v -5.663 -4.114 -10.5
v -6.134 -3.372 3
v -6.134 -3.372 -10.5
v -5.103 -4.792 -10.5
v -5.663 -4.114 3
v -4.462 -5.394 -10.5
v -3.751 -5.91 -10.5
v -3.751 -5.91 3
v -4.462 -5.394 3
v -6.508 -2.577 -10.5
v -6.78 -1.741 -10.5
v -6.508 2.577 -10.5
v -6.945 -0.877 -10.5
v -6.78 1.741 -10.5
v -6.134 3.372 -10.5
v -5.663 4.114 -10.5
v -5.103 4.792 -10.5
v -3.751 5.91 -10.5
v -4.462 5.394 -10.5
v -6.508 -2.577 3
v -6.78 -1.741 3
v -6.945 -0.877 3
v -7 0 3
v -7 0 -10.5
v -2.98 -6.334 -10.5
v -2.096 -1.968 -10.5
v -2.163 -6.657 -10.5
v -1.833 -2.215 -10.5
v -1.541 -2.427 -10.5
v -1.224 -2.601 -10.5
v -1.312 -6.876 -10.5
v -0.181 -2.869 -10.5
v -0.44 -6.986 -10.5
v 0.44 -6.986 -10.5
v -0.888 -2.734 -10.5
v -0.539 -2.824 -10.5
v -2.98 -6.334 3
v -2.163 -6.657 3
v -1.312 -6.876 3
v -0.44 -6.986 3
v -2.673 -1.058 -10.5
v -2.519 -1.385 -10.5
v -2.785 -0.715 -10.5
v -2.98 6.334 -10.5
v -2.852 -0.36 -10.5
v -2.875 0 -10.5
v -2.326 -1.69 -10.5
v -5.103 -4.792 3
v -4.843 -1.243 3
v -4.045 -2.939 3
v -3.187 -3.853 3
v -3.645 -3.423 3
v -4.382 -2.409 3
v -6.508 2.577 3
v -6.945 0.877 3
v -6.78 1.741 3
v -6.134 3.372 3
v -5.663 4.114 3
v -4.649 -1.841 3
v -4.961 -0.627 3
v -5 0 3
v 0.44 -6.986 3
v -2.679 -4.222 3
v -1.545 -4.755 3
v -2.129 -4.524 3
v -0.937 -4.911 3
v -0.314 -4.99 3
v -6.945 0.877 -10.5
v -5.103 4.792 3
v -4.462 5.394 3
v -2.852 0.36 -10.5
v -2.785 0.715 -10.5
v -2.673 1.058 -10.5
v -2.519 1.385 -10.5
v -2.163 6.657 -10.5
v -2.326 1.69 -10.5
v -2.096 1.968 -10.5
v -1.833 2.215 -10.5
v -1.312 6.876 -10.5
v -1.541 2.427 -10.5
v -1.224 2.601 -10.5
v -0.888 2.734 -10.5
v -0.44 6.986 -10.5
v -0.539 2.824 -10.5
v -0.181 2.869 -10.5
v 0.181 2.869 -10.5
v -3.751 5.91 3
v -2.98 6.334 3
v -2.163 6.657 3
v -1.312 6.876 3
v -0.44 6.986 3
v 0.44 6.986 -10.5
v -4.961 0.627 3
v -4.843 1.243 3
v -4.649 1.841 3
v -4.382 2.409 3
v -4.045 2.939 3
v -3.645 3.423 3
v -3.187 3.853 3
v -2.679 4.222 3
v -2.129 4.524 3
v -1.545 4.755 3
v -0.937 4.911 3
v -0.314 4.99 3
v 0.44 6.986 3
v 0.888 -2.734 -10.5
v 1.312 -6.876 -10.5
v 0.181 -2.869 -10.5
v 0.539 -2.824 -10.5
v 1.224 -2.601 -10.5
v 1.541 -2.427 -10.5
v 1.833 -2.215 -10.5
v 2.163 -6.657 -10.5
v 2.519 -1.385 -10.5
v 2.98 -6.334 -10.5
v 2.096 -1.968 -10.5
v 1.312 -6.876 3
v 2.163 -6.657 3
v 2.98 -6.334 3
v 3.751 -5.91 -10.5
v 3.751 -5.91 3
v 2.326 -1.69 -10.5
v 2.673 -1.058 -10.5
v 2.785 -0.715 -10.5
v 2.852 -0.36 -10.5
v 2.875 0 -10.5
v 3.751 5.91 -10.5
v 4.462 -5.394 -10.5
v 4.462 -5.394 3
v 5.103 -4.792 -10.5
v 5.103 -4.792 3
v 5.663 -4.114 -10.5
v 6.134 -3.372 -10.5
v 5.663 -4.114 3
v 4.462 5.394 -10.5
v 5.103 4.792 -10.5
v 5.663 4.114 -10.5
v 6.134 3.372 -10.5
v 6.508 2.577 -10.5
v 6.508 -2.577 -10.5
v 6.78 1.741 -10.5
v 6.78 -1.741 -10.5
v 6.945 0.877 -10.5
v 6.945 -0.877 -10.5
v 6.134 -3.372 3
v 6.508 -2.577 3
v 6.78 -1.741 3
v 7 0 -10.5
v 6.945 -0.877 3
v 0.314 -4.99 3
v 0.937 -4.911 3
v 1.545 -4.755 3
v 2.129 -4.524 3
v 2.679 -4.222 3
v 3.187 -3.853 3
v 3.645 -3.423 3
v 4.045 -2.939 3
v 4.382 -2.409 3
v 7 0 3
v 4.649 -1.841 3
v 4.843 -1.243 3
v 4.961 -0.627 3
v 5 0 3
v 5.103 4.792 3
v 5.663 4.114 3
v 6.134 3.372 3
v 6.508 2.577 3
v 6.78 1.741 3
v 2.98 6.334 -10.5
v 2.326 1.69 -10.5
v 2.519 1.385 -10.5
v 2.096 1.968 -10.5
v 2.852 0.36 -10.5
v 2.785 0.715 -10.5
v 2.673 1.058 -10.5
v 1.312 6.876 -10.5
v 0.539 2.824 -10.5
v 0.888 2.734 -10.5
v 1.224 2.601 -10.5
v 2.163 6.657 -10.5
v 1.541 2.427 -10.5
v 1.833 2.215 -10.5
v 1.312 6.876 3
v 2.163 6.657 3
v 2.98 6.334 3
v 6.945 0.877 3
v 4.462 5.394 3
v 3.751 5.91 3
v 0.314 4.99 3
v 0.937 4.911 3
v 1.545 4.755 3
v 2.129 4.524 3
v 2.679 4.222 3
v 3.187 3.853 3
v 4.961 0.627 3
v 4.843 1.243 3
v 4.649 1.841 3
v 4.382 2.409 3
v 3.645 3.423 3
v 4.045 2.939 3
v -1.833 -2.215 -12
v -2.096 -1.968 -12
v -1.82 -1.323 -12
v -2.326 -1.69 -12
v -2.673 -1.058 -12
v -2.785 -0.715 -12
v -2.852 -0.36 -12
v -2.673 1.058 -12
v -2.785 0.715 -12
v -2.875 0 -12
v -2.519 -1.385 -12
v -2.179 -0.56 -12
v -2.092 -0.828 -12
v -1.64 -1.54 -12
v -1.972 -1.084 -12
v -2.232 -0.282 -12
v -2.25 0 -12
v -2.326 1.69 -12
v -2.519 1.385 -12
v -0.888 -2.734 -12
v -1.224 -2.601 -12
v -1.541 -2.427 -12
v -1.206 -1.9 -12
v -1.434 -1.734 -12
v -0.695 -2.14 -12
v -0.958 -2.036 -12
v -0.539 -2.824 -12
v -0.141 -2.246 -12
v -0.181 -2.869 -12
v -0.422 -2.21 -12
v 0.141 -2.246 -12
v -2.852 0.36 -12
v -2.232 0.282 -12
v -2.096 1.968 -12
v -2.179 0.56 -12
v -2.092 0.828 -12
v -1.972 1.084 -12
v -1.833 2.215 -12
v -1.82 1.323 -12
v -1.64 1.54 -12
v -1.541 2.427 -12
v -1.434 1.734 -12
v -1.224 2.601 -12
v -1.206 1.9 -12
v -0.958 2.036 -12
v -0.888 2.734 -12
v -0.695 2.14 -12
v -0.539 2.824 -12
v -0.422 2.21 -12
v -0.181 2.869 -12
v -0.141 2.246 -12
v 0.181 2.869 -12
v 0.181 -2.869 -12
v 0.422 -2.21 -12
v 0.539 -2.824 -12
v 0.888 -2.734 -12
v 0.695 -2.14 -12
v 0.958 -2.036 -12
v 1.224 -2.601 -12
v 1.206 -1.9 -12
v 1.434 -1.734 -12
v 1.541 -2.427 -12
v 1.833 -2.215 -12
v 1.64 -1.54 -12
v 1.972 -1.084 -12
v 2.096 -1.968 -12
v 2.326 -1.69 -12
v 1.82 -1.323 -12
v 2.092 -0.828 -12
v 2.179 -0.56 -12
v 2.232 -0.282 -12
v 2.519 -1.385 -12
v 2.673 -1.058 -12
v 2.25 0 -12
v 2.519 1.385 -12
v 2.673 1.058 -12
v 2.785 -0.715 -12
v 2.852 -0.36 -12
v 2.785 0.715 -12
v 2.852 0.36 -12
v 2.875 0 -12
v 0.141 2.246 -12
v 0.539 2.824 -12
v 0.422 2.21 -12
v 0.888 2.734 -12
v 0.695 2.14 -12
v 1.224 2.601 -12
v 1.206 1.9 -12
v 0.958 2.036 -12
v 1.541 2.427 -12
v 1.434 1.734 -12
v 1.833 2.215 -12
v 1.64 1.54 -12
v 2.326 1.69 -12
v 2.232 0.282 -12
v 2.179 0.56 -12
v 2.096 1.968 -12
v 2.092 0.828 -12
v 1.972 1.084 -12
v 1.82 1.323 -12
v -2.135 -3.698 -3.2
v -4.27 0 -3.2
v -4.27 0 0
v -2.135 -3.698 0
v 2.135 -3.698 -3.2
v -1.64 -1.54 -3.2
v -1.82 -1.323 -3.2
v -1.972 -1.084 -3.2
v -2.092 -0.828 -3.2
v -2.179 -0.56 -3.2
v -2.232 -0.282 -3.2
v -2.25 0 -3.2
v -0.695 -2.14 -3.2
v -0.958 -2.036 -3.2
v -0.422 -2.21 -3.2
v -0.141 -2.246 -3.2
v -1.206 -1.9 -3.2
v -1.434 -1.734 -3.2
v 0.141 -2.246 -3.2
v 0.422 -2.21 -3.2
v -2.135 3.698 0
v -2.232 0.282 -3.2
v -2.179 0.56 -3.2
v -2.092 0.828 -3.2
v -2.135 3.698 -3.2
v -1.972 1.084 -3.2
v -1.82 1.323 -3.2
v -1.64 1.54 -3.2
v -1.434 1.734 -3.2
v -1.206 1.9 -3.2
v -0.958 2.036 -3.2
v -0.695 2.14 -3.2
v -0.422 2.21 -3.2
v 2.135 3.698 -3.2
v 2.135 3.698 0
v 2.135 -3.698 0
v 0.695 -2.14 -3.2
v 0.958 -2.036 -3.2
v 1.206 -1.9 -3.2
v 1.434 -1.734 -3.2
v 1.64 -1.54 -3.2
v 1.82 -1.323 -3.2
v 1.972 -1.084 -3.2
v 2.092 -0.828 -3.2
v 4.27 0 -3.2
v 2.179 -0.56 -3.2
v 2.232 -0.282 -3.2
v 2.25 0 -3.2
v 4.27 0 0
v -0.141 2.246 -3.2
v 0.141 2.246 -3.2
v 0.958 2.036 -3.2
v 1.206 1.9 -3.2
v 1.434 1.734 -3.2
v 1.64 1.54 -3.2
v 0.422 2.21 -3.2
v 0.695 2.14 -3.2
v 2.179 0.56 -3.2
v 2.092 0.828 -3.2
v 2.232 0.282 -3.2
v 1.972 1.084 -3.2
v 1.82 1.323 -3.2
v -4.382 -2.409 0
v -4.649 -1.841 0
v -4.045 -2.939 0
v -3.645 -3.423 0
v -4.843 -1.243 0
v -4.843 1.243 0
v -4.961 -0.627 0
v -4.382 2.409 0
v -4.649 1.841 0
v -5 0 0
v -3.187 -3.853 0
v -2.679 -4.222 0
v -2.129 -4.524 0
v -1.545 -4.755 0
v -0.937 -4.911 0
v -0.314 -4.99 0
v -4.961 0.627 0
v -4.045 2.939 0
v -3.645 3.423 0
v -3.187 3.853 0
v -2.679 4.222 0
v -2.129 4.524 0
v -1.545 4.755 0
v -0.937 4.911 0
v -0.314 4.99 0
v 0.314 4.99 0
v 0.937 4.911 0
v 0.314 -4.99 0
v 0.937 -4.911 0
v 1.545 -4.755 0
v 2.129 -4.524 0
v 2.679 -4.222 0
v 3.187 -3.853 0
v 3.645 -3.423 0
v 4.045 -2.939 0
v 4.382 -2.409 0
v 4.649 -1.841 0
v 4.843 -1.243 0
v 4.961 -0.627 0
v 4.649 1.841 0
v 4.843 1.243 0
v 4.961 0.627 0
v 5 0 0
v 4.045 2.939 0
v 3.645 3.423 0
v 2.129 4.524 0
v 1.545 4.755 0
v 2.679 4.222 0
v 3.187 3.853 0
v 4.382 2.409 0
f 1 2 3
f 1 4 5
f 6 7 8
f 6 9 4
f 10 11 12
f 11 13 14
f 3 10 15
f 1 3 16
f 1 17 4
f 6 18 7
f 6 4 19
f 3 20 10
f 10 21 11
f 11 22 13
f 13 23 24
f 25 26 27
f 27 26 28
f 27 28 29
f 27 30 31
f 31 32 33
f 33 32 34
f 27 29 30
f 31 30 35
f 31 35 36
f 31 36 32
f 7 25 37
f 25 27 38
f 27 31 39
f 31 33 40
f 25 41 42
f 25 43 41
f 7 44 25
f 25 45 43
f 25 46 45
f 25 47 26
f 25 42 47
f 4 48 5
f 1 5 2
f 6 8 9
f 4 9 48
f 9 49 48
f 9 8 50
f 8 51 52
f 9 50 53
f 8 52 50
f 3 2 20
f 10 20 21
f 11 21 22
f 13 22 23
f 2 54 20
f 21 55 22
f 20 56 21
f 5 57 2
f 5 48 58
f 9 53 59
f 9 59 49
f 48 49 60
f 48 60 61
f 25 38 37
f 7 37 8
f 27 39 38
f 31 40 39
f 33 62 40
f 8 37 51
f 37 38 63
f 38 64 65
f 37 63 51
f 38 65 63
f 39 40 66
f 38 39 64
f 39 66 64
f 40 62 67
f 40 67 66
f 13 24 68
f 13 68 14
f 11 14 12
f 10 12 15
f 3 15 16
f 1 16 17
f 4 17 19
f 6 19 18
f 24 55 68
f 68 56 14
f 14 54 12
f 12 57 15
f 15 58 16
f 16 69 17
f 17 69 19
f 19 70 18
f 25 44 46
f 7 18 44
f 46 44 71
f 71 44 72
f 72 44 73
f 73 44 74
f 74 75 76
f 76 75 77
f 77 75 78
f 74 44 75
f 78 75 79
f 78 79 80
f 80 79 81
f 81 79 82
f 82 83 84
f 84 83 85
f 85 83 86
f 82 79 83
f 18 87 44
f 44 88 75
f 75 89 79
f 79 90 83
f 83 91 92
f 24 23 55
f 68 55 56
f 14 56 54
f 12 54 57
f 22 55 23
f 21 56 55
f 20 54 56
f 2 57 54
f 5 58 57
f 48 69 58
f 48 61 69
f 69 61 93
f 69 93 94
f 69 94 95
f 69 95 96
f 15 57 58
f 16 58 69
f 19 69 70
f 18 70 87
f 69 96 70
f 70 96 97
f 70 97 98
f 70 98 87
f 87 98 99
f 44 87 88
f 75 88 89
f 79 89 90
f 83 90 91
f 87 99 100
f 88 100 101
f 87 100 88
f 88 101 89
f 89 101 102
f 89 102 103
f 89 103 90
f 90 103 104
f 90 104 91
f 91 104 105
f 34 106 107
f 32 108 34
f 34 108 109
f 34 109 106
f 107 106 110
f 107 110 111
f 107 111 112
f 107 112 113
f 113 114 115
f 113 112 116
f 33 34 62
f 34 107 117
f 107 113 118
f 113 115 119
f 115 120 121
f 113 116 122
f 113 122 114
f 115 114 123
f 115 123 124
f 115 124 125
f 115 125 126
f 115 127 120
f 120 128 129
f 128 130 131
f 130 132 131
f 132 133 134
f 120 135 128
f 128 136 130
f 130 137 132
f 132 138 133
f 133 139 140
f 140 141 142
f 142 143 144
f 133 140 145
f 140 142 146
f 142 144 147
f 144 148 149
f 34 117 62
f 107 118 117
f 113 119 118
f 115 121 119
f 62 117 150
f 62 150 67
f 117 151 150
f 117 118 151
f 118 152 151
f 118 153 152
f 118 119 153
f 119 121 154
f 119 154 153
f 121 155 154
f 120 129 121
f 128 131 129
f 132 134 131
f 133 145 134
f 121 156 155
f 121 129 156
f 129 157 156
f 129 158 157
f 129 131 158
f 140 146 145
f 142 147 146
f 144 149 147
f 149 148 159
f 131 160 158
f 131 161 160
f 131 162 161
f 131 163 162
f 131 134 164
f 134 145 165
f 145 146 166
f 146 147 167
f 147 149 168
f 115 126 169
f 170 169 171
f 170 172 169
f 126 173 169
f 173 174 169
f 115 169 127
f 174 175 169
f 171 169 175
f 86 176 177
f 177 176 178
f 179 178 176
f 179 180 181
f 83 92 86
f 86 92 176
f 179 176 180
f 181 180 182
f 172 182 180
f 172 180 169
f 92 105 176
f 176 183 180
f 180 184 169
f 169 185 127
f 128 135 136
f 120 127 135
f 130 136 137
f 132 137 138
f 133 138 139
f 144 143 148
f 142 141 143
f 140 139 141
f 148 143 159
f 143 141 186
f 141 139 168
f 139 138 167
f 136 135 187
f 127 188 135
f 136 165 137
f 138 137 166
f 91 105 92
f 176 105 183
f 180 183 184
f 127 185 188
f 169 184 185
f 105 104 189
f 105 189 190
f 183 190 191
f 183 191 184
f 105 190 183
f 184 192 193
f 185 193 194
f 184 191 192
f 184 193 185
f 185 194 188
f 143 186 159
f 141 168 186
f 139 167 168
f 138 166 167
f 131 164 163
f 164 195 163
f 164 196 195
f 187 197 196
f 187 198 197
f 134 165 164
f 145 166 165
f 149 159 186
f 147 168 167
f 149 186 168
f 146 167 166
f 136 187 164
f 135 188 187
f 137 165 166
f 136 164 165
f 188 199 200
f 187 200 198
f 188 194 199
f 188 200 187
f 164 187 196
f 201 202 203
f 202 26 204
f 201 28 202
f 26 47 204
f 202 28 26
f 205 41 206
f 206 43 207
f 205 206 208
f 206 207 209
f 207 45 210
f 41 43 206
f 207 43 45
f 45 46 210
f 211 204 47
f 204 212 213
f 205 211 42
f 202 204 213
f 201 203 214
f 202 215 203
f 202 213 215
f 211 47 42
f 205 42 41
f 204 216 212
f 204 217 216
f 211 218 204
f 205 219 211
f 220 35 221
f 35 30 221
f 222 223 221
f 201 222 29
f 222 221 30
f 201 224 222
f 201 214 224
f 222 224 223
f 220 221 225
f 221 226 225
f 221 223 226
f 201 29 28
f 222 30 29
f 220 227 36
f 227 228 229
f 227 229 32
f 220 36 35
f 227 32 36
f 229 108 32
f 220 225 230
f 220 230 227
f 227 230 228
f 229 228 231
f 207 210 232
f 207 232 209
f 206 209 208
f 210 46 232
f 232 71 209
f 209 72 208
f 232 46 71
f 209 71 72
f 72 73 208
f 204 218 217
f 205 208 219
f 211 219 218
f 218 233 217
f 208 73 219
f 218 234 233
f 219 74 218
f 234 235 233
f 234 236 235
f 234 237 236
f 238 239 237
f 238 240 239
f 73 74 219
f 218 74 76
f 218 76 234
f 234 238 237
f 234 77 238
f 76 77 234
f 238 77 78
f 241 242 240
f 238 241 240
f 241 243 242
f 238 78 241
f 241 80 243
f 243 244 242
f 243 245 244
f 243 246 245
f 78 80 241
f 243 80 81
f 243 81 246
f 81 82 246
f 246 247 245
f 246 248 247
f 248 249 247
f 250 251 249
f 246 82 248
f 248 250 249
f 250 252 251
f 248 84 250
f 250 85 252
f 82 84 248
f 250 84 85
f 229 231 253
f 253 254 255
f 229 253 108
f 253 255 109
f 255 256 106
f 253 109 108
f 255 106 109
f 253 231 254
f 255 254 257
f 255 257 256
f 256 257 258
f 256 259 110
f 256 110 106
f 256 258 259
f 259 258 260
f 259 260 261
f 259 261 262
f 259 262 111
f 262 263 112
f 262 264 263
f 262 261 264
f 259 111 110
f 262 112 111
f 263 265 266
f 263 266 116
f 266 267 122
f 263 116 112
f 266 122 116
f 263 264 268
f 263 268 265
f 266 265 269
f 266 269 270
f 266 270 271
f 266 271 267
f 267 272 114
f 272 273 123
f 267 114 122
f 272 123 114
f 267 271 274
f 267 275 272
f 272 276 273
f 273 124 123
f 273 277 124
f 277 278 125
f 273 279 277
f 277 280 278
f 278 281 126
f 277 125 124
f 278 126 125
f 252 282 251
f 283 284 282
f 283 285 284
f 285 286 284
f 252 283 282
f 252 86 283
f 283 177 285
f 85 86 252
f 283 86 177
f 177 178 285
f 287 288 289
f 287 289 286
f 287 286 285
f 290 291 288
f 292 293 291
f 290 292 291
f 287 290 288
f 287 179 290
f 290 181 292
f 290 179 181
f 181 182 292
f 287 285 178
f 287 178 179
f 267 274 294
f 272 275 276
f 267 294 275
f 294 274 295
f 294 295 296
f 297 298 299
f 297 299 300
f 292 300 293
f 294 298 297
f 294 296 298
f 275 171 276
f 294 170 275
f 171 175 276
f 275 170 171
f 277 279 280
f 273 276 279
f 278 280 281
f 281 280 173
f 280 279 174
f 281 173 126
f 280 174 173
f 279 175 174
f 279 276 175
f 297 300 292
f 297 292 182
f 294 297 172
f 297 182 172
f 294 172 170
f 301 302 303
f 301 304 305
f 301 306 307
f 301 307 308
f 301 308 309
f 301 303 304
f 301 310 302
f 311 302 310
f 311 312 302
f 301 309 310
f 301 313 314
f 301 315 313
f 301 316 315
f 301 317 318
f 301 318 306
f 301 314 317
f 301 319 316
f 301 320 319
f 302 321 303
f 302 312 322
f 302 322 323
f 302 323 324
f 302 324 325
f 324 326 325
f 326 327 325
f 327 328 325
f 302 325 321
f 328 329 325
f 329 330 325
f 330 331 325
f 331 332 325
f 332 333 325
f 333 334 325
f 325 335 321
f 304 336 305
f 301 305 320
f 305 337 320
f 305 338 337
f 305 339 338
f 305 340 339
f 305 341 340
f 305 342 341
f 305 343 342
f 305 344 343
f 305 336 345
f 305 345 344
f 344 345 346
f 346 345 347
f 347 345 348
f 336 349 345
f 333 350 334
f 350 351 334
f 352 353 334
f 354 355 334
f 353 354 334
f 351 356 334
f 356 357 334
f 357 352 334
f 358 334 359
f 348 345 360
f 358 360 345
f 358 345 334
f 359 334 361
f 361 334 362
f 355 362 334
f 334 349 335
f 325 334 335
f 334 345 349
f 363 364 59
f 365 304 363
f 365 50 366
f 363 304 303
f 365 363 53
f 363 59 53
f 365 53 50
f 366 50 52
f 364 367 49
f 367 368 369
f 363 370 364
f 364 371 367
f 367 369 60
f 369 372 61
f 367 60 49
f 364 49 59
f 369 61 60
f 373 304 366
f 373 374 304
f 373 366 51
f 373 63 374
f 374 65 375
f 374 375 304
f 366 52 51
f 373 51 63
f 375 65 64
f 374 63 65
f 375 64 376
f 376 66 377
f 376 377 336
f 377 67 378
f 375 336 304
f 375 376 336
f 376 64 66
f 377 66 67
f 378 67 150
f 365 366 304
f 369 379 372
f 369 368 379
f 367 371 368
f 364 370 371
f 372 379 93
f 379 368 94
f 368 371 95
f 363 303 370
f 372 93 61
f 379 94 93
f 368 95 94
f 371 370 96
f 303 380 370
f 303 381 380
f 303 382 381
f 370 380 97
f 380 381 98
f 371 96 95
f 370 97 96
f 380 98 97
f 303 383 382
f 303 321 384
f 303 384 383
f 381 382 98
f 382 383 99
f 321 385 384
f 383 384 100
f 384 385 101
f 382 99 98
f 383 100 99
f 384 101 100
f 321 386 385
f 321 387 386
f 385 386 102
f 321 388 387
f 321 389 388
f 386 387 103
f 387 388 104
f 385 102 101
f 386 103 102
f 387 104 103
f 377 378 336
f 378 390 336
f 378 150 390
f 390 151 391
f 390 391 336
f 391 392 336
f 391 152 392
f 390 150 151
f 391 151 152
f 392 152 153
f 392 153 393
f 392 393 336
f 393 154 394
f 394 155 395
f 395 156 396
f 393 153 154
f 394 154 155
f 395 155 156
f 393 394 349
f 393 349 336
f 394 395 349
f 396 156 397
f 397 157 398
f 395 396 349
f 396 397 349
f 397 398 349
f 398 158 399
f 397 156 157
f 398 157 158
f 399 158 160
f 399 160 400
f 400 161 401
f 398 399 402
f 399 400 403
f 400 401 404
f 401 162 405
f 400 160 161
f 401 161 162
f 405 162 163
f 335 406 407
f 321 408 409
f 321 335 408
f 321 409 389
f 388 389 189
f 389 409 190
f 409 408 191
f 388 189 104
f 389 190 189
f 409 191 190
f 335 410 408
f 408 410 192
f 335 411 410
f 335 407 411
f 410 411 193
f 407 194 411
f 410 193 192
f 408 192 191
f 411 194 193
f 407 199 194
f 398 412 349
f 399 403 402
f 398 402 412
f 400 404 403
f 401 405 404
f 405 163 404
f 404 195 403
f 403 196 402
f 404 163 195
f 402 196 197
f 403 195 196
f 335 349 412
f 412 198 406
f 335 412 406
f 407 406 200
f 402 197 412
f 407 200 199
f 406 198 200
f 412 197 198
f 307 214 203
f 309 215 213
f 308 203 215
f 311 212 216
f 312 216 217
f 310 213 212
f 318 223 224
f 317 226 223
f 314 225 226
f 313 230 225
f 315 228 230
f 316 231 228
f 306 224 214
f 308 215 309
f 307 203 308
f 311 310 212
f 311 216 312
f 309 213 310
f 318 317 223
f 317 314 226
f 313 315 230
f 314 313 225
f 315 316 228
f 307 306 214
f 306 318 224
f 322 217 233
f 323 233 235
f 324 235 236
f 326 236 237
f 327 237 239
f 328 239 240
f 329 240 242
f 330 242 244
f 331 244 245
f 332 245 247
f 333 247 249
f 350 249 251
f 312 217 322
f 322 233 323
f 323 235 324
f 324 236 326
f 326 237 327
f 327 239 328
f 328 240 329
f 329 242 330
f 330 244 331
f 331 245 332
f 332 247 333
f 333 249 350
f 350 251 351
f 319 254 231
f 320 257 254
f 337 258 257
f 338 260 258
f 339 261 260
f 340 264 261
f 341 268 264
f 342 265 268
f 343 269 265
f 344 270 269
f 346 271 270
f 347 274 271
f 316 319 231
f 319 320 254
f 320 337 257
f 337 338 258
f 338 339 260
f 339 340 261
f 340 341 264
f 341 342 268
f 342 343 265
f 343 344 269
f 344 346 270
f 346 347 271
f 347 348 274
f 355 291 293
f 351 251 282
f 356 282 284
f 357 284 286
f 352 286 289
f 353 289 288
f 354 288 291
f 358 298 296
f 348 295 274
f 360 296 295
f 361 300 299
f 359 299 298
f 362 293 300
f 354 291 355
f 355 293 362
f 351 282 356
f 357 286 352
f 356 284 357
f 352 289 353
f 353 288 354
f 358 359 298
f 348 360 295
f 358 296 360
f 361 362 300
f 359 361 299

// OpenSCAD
$fn = 50;


difference() {
	union() {
		translate(v = [0, 0, -10.5000000000]) {
			cylinder(h = 13.5000000000, r = 7.0000000000);
		}
		#translate(v = [0, 0, -12.0000000000]) {
			cylinder(h = 12, r = 2.8750000000);
		}
	}
	union() {
		translate(v = [0, 0, 0]) {
			rotate(a = [0, 0, 0]) {
				difference() {
					union() {
						translate(v = [0, 0, -3.2000000000]) {
							linear_extrude(height = 3.2000000000) {
								polygon(points = [[4.2698000000, 0.0000000000], [2.1349000000, 3.6977552691], [-2.1349000000, 3.6977552691], [-4.2698000000, 0.0000000000], [-2.1349000000, -3.6977552691], [2.1349000000, -3.6977552691]]);
							}
						}
					}
					union();
				}
			}
		}
		#cylinder(h = 3, r = 5.0000000000);
		#translate(v = [0, 0, -100.0000000000]) {
			cylinder(h = 200, r = 2.2500000000);
		}
	}
}
